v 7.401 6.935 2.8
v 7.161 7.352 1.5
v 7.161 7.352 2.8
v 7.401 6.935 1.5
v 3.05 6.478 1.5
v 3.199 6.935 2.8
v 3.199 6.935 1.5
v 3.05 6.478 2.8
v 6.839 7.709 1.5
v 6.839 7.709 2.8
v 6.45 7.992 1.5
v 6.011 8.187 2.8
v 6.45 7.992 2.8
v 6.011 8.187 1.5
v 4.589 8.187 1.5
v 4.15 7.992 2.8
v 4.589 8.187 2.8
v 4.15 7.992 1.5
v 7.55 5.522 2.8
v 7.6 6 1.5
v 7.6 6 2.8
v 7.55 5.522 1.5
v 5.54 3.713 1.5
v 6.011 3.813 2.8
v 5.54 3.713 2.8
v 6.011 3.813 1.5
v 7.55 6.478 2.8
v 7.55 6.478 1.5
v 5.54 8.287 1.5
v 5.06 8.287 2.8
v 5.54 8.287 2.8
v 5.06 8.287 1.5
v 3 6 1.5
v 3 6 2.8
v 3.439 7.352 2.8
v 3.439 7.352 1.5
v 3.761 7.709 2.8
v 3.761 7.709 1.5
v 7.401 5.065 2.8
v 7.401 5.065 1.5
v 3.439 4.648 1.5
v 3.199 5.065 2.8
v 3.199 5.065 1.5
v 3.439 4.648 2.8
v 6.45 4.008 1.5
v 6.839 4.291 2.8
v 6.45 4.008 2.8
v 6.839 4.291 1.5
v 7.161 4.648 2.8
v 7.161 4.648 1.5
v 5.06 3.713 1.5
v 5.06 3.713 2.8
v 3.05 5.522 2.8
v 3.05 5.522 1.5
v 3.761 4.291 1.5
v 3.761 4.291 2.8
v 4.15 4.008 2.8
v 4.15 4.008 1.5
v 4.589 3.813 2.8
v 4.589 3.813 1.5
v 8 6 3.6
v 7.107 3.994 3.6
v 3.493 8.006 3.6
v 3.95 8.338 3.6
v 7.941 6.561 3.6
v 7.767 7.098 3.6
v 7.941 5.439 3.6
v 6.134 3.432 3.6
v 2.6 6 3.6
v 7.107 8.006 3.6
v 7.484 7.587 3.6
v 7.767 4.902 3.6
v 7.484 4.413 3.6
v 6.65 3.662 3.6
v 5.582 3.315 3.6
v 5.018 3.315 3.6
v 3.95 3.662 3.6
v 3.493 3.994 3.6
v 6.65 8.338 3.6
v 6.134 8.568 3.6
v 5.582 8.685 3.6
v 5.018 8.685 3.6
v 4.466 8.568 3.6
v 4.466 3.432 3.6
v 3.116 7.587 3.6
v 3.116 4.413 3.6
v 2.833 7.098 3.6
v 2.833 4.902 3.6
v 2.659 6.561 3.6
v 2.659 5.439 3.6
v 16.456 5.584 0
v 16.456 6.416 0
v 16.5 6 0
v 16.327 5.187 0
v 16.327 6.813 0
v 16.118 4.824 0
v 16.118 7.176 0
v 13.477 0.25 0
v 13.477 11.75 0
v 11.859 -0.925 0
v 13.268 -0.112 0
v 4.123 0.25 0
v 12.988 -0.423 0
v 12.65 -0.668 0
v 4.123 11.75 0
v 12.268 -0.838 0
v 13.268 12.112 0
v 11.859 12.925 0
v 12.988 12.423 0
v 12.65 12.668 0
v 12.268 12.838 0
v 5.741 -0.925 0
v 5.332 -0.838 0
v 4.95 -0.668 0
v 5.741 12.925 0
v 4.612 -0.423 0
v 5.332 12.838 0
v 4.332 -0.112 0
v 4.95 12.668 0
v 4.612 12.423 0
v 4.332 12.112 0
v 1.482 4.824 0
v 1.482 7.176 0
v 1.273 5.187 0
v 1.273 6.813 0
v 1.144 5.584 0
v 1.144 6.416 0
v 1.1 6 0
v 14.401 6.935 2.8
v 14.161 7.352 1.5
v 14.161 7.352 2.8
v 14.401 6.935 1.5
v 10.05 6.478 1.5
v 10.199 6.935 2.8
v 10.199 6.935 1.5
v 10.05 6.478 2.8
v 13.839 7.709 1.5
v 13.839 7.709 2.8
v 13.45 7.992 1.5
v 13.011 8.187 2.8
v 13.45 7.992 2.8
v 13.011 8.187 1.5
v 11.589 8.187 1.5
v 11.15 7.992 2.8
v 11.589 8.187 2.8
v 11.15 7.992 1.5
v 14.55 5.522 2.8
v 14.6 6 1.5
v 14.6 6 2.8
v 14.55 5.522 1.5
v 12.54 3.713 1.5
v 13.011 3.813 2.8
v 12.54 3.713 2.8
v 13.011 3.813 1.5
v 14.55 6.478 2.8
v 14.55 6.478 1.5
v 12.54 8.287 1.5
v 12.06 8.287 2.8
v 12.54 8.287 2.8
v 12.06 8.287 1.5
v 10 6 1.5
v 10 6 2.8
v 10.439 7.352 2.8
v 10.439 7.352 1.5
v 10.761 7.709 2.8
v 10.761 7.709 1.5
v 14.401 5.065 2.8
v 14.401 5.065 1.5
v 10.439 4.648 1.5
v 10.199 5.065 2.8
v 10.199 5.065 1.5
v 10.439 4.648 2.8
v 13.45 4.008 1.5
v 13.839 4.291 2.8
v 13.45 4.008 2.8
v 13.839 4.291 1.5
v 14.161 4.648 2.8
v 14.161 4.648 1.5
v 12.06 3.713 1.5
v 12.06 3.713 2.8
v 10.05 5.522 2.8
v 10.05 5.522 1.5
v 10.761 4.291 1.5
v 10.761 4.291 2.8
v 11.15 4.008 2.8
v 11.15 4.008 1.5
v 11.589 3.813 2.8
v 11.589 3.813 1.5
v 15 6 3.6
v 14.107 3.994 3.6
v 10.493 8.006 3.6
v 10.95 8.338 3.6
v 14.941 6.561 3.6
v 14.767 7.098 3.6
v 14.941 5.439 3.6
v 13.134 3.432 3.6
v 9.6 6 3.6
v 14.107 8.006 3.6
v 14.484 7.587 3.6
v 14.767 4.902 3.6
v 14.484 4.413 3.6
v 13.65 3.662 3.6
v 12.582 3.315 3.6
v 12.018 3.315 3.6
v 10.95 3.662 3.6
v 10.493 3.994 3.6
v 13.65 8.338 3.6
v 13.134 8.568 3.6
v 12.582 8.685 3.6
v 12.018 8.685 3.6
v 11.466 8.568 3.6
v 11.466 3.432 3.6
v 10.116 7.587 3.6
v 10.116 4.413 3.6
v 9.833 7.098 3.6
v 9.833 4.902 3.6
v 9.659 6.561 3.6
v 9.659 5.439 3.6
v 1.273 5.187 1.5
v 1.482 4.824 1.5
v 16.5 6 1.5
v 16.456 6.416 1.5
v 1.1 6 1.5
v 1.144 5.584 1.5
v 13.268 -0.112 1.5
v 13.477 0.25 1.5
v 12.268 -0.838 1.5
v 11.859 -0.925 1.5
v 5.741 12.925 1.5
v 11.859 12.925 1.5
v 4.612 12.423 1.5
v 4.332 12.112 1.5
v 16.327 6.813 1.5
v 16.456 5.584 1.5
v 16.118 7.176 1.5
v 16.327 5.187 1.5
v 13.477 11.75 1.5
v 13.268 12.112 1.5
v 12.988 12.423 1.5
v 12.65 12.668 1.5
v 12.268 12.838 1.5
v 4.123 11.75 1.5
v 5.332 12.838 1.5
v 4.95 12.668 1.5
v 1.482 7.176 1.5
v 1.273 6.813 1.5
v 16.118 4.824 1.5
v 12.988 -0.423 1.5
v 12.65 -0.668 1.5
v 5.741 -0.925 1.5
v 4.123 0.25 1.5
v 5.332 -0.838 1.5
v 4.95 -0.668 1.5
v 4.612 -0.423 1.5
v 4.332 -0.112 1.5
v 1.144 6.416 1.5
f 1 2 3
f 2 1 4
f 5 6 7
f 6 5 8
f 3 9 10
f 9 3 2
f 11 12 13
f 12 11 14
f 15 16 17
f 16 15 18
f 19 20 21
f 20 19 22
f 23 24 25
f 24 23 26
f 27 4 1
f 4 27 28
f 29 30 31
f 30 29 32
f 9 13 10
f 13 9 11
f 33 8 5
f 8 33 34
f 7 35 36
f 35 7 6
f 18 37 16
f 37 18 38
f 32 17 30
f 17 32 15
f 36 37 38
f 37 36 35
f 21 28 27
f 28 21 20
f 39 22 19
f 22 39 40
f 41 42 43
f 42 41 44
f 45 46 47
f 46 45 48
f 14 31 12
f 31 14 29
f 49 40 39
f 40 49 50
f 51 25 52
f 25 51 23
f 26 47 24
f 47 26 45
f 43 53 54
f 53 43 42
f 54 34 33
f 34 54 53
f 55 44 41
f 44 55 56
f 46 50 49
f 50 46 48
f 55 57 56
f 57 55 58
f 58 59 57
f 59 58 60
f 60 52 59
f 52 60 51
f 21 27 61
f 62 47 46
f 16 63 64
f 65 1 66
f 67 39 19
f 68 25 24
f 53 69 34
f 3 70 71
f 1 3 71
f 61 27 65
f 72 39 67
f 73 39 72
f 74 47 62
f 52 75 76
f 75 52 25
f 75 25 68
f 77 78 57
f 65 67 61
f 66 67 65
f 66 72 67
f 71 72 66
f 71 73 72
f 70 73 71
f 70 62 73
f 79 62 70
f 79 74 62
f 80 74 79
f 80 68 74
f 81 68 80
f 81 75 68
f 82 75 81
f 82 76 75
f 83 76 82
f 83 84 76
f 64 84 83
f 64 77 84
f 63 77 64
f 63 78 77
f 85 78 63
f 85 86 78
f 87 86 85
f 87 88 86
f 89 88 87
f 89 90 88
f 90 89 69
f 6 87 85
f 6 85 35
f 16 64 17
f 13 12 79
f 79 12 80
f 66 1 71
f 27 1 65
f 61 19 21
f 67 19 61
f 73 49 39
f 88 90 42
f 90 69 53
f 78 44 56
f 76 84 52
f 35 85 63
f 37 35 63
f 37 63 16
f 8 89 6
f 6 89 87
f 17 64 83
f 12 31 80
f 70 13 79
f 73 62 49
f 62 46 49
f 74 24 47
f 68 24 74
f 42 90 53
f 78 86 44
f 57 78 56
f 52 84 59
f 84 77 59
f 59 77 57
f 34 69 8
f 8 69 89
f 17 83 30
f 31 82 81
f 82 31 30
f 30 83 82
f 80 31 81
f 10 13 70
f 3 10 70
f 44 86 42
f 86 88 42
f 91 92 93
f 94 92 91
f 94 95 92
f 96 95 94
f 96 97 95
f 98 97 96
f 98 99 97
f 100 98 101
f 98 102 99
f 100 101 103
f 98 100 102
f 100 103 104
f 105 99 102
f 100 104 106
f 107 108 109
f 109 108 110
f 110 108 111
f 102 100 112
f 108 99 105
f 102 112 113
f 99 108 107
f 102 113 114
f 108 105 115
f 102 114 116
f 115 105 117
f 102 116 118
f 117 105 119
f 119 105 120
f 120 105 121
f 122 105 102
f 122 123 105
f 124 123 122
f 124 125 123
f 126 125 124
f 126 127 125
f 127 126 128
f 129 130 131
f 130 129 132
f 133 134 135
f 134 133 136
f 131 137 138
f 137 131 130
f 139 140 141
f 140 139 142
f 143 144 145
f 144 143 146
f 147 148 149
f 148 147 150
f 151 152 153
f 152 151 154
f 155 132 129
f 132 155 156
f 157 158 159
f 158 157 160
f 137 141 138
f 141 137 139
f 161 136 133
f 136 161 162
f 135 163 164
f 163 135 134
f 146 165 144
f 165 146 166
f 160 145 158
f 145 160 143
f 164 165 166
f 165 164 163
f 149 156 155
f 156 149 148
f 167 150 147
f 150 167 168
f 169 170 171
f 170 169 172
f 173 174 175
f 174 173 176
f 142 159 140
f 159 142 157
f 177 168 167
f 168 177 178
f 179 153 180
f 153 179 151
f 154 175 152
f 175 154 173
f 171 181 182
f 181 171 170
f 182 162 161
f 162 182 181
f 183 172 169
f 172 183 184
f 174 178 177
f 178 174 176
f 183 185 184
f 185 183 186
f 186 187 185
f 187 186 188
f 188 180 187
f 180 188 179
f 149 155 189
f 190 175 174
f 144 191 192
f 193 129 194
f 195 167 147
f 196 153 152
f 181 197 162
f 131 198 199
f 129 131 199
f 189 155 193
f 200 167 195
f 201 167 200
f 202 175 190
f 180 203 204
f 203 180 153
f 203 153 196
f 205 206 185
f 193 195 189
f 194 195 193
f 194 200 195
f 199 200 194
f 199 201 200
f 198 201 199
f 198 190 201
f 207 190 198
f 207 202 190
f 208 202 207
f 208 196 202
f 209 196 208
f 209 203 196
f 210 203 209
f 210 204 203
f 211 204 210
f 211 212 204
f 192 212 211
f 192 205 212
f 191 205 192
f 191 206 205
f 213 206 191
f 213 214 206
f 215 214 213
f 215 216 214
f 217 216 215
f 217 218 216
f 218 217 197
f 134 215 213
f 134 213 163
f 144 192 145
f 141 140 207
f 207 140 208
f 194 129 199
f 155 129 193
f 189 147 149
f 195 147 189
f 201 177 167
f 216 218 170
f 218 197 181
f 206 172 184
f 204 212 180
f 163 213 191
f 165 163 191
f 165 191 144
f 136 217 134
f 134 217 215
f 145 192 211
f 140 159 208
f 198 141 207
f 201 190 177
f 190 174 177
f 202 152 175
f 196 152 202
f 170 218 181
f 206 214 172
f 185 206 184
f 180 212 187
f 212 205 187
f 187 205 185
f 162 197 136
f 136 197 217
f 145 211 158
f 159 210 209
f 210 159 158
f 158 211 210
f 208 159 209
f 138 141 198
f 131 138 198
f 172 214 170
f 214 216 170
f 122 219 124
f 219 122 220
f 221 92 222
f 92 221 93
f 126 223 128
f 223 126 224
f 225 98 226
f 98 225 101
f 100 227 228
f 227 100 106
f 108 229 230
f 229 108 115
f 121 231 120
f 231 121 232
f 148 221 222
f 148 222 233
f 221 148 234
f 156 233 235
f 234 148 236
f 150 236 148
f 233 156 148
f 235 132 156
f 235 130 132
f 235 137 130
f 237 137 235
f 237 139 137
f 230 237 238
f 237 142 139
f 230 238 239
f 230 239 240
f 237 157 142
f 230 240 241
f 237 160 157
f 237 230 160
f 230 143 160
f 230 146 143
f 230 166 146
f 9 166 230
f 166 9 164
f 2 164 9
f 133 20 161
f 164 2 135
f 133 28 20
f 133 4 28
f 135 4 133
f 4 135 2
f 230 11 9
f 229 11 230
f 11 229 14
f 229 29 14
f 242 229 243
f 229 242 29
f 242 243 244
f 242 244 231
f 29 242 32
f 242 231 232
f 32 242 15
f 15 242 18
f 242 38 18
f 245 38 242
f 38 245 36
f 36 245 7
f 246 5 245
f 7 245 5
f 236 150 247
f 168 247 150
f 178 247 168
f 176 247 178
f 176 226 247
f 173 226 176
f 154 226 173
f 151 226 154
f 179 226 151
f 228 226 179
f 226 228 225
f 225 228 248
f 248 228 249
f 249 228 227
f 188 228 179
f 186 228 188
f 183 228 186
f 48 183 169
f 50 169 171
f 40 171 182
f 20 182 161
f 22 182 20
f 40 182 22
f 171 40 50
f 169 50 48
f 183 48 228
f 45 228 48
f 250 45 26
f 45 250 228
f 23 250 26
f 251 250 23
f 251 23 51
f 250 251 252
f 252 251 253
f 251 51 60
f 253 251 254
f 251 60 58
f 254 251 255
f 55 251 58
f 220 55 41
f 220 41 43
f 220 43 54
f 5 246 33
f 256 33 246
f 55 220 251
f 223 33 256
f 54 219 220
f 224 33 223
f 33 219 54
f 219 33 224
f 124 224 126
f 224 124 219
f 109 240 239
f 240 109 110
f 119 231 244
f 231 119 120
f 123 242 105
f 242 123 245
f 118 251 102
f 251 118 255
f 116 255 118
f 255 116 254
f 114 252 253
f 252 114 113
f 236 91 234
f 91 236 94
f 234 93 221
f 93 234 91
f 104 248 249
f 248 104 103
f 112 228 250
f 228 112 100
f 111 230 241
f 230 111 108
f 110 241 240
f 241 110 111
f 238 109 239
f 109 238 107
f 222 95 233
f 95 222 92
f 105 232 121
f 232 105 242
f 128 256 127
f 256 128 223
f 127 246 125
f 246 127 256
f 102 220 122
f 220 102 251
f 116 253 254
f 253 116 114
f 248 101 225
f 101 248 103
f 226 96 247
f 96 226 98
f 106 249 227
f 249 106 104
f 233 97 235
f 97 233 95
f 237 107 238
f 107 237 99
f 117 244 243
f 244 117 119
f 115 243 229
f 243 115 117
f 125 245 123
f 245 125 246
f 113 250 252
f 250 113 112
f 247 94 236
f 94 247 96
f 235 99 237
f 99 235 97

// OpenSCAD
// Bracelet connector parameters
// Using the same parameters from original bracelet for compatibility

// Base parameters from original design
width = 12;      // Width of the band in mm 
height = 1.5;    // Thickness/height of the band in mm
bevel_radius = 2; // Radius for the beveled/curved edges

// Peg parameters (further reduced for better fit between PLA pegs and TPU holes)
peg_diameter = 4.6;    // Further reduced diameter (original was 5, then 4.8, then 4.6)
peg_height = 2.6;      // Kept the same height
peg_top_diameter = 5.4; // Further reduced flare (original was 6, then 5.7, then 5.4)
peg_base_height = 1;   // Height of the reinforced base

// Dual peg spacing (matching the hole spacing from original)
hole_spacing = 7;      // Distance between peg centers
connector_length = hole_spacing + peg_diameter + 6; // Length of the connector piece

// Create a proper hexagonal connector base
module hexagonal_connector() {
    center_x = connector_length / 2;
    center_y = width / 2;
    
    // Size of the hexagon (distance from center to mid-edge)
    hex_size = min(connector_length/2, width/2) * 0.95;
    
    hull() {
        // Create six rounded corners for the hexagon
        for (i = [0:5]) {
            angle = i * 60;
            // Calculate corner position
            x = center_x + hex_size * cos(angle);
            y = center_y + hex_size * sin(angle);
            
            translate([x, y, 0])
                cylinder(r=bevel_radius, h=height, $fn=30);
        }
    }
}

// Create the hexagonal base connector
hexagonal_connector();

// Add first peg - position unchanged from original
translate([connector_length/2 - hole_spacing/2, width/2, 0]) {
    // Reinforced base for the peg
    cylinder(d=peg_diameter + 2, h=peg_base_height, $fn=30);
    
    // Peg with flared top
    translate([0, 0, peg_base_height]) {
        // Main peg body
        cylinder(d1=peg_diameter, d2=peg_diameter, h=peg_height-0.8, $fn=30);
        
        // Flared top portion
        translate([0, 0, peg_height-0.8])
        cylinder(d1=peg_diameter, d2=peg_top_diameter, h=0.8, $fn=30);
    }
}

// Add second peg - position unchanged from original
translate([connector_length/2 + hole_spacing/2, width/2, 0]) {
    // Reinforced base for the peg
    cylinder(d=peg_diameter + 2, h=peg_base_height, $fn=30);
    
    // Peg with flared top
    translate([0, 0, peg_base_height]) {
        // Main peg body
        cylinder(d1=peg_diameter, d2=peg_diameter, h=peg_height-0.8, $fn=30);
        
        // Flared top portion
        translate([0, 0, peg_height-0.8])
        cylinder(d1=peg_diameter, d2=peg_top_diameter, h=0.8, $fn=30);
    }
}

// Add some debug text to verify dimensions
echo("Connector length:", connector_length);
echo("Peg spacing:", hole_spacing);
echo("First peg position:", connector_length/2 - hole_spacing/2);
echo("Second peg position:", connector_length/2 + hole_spacing/2);
